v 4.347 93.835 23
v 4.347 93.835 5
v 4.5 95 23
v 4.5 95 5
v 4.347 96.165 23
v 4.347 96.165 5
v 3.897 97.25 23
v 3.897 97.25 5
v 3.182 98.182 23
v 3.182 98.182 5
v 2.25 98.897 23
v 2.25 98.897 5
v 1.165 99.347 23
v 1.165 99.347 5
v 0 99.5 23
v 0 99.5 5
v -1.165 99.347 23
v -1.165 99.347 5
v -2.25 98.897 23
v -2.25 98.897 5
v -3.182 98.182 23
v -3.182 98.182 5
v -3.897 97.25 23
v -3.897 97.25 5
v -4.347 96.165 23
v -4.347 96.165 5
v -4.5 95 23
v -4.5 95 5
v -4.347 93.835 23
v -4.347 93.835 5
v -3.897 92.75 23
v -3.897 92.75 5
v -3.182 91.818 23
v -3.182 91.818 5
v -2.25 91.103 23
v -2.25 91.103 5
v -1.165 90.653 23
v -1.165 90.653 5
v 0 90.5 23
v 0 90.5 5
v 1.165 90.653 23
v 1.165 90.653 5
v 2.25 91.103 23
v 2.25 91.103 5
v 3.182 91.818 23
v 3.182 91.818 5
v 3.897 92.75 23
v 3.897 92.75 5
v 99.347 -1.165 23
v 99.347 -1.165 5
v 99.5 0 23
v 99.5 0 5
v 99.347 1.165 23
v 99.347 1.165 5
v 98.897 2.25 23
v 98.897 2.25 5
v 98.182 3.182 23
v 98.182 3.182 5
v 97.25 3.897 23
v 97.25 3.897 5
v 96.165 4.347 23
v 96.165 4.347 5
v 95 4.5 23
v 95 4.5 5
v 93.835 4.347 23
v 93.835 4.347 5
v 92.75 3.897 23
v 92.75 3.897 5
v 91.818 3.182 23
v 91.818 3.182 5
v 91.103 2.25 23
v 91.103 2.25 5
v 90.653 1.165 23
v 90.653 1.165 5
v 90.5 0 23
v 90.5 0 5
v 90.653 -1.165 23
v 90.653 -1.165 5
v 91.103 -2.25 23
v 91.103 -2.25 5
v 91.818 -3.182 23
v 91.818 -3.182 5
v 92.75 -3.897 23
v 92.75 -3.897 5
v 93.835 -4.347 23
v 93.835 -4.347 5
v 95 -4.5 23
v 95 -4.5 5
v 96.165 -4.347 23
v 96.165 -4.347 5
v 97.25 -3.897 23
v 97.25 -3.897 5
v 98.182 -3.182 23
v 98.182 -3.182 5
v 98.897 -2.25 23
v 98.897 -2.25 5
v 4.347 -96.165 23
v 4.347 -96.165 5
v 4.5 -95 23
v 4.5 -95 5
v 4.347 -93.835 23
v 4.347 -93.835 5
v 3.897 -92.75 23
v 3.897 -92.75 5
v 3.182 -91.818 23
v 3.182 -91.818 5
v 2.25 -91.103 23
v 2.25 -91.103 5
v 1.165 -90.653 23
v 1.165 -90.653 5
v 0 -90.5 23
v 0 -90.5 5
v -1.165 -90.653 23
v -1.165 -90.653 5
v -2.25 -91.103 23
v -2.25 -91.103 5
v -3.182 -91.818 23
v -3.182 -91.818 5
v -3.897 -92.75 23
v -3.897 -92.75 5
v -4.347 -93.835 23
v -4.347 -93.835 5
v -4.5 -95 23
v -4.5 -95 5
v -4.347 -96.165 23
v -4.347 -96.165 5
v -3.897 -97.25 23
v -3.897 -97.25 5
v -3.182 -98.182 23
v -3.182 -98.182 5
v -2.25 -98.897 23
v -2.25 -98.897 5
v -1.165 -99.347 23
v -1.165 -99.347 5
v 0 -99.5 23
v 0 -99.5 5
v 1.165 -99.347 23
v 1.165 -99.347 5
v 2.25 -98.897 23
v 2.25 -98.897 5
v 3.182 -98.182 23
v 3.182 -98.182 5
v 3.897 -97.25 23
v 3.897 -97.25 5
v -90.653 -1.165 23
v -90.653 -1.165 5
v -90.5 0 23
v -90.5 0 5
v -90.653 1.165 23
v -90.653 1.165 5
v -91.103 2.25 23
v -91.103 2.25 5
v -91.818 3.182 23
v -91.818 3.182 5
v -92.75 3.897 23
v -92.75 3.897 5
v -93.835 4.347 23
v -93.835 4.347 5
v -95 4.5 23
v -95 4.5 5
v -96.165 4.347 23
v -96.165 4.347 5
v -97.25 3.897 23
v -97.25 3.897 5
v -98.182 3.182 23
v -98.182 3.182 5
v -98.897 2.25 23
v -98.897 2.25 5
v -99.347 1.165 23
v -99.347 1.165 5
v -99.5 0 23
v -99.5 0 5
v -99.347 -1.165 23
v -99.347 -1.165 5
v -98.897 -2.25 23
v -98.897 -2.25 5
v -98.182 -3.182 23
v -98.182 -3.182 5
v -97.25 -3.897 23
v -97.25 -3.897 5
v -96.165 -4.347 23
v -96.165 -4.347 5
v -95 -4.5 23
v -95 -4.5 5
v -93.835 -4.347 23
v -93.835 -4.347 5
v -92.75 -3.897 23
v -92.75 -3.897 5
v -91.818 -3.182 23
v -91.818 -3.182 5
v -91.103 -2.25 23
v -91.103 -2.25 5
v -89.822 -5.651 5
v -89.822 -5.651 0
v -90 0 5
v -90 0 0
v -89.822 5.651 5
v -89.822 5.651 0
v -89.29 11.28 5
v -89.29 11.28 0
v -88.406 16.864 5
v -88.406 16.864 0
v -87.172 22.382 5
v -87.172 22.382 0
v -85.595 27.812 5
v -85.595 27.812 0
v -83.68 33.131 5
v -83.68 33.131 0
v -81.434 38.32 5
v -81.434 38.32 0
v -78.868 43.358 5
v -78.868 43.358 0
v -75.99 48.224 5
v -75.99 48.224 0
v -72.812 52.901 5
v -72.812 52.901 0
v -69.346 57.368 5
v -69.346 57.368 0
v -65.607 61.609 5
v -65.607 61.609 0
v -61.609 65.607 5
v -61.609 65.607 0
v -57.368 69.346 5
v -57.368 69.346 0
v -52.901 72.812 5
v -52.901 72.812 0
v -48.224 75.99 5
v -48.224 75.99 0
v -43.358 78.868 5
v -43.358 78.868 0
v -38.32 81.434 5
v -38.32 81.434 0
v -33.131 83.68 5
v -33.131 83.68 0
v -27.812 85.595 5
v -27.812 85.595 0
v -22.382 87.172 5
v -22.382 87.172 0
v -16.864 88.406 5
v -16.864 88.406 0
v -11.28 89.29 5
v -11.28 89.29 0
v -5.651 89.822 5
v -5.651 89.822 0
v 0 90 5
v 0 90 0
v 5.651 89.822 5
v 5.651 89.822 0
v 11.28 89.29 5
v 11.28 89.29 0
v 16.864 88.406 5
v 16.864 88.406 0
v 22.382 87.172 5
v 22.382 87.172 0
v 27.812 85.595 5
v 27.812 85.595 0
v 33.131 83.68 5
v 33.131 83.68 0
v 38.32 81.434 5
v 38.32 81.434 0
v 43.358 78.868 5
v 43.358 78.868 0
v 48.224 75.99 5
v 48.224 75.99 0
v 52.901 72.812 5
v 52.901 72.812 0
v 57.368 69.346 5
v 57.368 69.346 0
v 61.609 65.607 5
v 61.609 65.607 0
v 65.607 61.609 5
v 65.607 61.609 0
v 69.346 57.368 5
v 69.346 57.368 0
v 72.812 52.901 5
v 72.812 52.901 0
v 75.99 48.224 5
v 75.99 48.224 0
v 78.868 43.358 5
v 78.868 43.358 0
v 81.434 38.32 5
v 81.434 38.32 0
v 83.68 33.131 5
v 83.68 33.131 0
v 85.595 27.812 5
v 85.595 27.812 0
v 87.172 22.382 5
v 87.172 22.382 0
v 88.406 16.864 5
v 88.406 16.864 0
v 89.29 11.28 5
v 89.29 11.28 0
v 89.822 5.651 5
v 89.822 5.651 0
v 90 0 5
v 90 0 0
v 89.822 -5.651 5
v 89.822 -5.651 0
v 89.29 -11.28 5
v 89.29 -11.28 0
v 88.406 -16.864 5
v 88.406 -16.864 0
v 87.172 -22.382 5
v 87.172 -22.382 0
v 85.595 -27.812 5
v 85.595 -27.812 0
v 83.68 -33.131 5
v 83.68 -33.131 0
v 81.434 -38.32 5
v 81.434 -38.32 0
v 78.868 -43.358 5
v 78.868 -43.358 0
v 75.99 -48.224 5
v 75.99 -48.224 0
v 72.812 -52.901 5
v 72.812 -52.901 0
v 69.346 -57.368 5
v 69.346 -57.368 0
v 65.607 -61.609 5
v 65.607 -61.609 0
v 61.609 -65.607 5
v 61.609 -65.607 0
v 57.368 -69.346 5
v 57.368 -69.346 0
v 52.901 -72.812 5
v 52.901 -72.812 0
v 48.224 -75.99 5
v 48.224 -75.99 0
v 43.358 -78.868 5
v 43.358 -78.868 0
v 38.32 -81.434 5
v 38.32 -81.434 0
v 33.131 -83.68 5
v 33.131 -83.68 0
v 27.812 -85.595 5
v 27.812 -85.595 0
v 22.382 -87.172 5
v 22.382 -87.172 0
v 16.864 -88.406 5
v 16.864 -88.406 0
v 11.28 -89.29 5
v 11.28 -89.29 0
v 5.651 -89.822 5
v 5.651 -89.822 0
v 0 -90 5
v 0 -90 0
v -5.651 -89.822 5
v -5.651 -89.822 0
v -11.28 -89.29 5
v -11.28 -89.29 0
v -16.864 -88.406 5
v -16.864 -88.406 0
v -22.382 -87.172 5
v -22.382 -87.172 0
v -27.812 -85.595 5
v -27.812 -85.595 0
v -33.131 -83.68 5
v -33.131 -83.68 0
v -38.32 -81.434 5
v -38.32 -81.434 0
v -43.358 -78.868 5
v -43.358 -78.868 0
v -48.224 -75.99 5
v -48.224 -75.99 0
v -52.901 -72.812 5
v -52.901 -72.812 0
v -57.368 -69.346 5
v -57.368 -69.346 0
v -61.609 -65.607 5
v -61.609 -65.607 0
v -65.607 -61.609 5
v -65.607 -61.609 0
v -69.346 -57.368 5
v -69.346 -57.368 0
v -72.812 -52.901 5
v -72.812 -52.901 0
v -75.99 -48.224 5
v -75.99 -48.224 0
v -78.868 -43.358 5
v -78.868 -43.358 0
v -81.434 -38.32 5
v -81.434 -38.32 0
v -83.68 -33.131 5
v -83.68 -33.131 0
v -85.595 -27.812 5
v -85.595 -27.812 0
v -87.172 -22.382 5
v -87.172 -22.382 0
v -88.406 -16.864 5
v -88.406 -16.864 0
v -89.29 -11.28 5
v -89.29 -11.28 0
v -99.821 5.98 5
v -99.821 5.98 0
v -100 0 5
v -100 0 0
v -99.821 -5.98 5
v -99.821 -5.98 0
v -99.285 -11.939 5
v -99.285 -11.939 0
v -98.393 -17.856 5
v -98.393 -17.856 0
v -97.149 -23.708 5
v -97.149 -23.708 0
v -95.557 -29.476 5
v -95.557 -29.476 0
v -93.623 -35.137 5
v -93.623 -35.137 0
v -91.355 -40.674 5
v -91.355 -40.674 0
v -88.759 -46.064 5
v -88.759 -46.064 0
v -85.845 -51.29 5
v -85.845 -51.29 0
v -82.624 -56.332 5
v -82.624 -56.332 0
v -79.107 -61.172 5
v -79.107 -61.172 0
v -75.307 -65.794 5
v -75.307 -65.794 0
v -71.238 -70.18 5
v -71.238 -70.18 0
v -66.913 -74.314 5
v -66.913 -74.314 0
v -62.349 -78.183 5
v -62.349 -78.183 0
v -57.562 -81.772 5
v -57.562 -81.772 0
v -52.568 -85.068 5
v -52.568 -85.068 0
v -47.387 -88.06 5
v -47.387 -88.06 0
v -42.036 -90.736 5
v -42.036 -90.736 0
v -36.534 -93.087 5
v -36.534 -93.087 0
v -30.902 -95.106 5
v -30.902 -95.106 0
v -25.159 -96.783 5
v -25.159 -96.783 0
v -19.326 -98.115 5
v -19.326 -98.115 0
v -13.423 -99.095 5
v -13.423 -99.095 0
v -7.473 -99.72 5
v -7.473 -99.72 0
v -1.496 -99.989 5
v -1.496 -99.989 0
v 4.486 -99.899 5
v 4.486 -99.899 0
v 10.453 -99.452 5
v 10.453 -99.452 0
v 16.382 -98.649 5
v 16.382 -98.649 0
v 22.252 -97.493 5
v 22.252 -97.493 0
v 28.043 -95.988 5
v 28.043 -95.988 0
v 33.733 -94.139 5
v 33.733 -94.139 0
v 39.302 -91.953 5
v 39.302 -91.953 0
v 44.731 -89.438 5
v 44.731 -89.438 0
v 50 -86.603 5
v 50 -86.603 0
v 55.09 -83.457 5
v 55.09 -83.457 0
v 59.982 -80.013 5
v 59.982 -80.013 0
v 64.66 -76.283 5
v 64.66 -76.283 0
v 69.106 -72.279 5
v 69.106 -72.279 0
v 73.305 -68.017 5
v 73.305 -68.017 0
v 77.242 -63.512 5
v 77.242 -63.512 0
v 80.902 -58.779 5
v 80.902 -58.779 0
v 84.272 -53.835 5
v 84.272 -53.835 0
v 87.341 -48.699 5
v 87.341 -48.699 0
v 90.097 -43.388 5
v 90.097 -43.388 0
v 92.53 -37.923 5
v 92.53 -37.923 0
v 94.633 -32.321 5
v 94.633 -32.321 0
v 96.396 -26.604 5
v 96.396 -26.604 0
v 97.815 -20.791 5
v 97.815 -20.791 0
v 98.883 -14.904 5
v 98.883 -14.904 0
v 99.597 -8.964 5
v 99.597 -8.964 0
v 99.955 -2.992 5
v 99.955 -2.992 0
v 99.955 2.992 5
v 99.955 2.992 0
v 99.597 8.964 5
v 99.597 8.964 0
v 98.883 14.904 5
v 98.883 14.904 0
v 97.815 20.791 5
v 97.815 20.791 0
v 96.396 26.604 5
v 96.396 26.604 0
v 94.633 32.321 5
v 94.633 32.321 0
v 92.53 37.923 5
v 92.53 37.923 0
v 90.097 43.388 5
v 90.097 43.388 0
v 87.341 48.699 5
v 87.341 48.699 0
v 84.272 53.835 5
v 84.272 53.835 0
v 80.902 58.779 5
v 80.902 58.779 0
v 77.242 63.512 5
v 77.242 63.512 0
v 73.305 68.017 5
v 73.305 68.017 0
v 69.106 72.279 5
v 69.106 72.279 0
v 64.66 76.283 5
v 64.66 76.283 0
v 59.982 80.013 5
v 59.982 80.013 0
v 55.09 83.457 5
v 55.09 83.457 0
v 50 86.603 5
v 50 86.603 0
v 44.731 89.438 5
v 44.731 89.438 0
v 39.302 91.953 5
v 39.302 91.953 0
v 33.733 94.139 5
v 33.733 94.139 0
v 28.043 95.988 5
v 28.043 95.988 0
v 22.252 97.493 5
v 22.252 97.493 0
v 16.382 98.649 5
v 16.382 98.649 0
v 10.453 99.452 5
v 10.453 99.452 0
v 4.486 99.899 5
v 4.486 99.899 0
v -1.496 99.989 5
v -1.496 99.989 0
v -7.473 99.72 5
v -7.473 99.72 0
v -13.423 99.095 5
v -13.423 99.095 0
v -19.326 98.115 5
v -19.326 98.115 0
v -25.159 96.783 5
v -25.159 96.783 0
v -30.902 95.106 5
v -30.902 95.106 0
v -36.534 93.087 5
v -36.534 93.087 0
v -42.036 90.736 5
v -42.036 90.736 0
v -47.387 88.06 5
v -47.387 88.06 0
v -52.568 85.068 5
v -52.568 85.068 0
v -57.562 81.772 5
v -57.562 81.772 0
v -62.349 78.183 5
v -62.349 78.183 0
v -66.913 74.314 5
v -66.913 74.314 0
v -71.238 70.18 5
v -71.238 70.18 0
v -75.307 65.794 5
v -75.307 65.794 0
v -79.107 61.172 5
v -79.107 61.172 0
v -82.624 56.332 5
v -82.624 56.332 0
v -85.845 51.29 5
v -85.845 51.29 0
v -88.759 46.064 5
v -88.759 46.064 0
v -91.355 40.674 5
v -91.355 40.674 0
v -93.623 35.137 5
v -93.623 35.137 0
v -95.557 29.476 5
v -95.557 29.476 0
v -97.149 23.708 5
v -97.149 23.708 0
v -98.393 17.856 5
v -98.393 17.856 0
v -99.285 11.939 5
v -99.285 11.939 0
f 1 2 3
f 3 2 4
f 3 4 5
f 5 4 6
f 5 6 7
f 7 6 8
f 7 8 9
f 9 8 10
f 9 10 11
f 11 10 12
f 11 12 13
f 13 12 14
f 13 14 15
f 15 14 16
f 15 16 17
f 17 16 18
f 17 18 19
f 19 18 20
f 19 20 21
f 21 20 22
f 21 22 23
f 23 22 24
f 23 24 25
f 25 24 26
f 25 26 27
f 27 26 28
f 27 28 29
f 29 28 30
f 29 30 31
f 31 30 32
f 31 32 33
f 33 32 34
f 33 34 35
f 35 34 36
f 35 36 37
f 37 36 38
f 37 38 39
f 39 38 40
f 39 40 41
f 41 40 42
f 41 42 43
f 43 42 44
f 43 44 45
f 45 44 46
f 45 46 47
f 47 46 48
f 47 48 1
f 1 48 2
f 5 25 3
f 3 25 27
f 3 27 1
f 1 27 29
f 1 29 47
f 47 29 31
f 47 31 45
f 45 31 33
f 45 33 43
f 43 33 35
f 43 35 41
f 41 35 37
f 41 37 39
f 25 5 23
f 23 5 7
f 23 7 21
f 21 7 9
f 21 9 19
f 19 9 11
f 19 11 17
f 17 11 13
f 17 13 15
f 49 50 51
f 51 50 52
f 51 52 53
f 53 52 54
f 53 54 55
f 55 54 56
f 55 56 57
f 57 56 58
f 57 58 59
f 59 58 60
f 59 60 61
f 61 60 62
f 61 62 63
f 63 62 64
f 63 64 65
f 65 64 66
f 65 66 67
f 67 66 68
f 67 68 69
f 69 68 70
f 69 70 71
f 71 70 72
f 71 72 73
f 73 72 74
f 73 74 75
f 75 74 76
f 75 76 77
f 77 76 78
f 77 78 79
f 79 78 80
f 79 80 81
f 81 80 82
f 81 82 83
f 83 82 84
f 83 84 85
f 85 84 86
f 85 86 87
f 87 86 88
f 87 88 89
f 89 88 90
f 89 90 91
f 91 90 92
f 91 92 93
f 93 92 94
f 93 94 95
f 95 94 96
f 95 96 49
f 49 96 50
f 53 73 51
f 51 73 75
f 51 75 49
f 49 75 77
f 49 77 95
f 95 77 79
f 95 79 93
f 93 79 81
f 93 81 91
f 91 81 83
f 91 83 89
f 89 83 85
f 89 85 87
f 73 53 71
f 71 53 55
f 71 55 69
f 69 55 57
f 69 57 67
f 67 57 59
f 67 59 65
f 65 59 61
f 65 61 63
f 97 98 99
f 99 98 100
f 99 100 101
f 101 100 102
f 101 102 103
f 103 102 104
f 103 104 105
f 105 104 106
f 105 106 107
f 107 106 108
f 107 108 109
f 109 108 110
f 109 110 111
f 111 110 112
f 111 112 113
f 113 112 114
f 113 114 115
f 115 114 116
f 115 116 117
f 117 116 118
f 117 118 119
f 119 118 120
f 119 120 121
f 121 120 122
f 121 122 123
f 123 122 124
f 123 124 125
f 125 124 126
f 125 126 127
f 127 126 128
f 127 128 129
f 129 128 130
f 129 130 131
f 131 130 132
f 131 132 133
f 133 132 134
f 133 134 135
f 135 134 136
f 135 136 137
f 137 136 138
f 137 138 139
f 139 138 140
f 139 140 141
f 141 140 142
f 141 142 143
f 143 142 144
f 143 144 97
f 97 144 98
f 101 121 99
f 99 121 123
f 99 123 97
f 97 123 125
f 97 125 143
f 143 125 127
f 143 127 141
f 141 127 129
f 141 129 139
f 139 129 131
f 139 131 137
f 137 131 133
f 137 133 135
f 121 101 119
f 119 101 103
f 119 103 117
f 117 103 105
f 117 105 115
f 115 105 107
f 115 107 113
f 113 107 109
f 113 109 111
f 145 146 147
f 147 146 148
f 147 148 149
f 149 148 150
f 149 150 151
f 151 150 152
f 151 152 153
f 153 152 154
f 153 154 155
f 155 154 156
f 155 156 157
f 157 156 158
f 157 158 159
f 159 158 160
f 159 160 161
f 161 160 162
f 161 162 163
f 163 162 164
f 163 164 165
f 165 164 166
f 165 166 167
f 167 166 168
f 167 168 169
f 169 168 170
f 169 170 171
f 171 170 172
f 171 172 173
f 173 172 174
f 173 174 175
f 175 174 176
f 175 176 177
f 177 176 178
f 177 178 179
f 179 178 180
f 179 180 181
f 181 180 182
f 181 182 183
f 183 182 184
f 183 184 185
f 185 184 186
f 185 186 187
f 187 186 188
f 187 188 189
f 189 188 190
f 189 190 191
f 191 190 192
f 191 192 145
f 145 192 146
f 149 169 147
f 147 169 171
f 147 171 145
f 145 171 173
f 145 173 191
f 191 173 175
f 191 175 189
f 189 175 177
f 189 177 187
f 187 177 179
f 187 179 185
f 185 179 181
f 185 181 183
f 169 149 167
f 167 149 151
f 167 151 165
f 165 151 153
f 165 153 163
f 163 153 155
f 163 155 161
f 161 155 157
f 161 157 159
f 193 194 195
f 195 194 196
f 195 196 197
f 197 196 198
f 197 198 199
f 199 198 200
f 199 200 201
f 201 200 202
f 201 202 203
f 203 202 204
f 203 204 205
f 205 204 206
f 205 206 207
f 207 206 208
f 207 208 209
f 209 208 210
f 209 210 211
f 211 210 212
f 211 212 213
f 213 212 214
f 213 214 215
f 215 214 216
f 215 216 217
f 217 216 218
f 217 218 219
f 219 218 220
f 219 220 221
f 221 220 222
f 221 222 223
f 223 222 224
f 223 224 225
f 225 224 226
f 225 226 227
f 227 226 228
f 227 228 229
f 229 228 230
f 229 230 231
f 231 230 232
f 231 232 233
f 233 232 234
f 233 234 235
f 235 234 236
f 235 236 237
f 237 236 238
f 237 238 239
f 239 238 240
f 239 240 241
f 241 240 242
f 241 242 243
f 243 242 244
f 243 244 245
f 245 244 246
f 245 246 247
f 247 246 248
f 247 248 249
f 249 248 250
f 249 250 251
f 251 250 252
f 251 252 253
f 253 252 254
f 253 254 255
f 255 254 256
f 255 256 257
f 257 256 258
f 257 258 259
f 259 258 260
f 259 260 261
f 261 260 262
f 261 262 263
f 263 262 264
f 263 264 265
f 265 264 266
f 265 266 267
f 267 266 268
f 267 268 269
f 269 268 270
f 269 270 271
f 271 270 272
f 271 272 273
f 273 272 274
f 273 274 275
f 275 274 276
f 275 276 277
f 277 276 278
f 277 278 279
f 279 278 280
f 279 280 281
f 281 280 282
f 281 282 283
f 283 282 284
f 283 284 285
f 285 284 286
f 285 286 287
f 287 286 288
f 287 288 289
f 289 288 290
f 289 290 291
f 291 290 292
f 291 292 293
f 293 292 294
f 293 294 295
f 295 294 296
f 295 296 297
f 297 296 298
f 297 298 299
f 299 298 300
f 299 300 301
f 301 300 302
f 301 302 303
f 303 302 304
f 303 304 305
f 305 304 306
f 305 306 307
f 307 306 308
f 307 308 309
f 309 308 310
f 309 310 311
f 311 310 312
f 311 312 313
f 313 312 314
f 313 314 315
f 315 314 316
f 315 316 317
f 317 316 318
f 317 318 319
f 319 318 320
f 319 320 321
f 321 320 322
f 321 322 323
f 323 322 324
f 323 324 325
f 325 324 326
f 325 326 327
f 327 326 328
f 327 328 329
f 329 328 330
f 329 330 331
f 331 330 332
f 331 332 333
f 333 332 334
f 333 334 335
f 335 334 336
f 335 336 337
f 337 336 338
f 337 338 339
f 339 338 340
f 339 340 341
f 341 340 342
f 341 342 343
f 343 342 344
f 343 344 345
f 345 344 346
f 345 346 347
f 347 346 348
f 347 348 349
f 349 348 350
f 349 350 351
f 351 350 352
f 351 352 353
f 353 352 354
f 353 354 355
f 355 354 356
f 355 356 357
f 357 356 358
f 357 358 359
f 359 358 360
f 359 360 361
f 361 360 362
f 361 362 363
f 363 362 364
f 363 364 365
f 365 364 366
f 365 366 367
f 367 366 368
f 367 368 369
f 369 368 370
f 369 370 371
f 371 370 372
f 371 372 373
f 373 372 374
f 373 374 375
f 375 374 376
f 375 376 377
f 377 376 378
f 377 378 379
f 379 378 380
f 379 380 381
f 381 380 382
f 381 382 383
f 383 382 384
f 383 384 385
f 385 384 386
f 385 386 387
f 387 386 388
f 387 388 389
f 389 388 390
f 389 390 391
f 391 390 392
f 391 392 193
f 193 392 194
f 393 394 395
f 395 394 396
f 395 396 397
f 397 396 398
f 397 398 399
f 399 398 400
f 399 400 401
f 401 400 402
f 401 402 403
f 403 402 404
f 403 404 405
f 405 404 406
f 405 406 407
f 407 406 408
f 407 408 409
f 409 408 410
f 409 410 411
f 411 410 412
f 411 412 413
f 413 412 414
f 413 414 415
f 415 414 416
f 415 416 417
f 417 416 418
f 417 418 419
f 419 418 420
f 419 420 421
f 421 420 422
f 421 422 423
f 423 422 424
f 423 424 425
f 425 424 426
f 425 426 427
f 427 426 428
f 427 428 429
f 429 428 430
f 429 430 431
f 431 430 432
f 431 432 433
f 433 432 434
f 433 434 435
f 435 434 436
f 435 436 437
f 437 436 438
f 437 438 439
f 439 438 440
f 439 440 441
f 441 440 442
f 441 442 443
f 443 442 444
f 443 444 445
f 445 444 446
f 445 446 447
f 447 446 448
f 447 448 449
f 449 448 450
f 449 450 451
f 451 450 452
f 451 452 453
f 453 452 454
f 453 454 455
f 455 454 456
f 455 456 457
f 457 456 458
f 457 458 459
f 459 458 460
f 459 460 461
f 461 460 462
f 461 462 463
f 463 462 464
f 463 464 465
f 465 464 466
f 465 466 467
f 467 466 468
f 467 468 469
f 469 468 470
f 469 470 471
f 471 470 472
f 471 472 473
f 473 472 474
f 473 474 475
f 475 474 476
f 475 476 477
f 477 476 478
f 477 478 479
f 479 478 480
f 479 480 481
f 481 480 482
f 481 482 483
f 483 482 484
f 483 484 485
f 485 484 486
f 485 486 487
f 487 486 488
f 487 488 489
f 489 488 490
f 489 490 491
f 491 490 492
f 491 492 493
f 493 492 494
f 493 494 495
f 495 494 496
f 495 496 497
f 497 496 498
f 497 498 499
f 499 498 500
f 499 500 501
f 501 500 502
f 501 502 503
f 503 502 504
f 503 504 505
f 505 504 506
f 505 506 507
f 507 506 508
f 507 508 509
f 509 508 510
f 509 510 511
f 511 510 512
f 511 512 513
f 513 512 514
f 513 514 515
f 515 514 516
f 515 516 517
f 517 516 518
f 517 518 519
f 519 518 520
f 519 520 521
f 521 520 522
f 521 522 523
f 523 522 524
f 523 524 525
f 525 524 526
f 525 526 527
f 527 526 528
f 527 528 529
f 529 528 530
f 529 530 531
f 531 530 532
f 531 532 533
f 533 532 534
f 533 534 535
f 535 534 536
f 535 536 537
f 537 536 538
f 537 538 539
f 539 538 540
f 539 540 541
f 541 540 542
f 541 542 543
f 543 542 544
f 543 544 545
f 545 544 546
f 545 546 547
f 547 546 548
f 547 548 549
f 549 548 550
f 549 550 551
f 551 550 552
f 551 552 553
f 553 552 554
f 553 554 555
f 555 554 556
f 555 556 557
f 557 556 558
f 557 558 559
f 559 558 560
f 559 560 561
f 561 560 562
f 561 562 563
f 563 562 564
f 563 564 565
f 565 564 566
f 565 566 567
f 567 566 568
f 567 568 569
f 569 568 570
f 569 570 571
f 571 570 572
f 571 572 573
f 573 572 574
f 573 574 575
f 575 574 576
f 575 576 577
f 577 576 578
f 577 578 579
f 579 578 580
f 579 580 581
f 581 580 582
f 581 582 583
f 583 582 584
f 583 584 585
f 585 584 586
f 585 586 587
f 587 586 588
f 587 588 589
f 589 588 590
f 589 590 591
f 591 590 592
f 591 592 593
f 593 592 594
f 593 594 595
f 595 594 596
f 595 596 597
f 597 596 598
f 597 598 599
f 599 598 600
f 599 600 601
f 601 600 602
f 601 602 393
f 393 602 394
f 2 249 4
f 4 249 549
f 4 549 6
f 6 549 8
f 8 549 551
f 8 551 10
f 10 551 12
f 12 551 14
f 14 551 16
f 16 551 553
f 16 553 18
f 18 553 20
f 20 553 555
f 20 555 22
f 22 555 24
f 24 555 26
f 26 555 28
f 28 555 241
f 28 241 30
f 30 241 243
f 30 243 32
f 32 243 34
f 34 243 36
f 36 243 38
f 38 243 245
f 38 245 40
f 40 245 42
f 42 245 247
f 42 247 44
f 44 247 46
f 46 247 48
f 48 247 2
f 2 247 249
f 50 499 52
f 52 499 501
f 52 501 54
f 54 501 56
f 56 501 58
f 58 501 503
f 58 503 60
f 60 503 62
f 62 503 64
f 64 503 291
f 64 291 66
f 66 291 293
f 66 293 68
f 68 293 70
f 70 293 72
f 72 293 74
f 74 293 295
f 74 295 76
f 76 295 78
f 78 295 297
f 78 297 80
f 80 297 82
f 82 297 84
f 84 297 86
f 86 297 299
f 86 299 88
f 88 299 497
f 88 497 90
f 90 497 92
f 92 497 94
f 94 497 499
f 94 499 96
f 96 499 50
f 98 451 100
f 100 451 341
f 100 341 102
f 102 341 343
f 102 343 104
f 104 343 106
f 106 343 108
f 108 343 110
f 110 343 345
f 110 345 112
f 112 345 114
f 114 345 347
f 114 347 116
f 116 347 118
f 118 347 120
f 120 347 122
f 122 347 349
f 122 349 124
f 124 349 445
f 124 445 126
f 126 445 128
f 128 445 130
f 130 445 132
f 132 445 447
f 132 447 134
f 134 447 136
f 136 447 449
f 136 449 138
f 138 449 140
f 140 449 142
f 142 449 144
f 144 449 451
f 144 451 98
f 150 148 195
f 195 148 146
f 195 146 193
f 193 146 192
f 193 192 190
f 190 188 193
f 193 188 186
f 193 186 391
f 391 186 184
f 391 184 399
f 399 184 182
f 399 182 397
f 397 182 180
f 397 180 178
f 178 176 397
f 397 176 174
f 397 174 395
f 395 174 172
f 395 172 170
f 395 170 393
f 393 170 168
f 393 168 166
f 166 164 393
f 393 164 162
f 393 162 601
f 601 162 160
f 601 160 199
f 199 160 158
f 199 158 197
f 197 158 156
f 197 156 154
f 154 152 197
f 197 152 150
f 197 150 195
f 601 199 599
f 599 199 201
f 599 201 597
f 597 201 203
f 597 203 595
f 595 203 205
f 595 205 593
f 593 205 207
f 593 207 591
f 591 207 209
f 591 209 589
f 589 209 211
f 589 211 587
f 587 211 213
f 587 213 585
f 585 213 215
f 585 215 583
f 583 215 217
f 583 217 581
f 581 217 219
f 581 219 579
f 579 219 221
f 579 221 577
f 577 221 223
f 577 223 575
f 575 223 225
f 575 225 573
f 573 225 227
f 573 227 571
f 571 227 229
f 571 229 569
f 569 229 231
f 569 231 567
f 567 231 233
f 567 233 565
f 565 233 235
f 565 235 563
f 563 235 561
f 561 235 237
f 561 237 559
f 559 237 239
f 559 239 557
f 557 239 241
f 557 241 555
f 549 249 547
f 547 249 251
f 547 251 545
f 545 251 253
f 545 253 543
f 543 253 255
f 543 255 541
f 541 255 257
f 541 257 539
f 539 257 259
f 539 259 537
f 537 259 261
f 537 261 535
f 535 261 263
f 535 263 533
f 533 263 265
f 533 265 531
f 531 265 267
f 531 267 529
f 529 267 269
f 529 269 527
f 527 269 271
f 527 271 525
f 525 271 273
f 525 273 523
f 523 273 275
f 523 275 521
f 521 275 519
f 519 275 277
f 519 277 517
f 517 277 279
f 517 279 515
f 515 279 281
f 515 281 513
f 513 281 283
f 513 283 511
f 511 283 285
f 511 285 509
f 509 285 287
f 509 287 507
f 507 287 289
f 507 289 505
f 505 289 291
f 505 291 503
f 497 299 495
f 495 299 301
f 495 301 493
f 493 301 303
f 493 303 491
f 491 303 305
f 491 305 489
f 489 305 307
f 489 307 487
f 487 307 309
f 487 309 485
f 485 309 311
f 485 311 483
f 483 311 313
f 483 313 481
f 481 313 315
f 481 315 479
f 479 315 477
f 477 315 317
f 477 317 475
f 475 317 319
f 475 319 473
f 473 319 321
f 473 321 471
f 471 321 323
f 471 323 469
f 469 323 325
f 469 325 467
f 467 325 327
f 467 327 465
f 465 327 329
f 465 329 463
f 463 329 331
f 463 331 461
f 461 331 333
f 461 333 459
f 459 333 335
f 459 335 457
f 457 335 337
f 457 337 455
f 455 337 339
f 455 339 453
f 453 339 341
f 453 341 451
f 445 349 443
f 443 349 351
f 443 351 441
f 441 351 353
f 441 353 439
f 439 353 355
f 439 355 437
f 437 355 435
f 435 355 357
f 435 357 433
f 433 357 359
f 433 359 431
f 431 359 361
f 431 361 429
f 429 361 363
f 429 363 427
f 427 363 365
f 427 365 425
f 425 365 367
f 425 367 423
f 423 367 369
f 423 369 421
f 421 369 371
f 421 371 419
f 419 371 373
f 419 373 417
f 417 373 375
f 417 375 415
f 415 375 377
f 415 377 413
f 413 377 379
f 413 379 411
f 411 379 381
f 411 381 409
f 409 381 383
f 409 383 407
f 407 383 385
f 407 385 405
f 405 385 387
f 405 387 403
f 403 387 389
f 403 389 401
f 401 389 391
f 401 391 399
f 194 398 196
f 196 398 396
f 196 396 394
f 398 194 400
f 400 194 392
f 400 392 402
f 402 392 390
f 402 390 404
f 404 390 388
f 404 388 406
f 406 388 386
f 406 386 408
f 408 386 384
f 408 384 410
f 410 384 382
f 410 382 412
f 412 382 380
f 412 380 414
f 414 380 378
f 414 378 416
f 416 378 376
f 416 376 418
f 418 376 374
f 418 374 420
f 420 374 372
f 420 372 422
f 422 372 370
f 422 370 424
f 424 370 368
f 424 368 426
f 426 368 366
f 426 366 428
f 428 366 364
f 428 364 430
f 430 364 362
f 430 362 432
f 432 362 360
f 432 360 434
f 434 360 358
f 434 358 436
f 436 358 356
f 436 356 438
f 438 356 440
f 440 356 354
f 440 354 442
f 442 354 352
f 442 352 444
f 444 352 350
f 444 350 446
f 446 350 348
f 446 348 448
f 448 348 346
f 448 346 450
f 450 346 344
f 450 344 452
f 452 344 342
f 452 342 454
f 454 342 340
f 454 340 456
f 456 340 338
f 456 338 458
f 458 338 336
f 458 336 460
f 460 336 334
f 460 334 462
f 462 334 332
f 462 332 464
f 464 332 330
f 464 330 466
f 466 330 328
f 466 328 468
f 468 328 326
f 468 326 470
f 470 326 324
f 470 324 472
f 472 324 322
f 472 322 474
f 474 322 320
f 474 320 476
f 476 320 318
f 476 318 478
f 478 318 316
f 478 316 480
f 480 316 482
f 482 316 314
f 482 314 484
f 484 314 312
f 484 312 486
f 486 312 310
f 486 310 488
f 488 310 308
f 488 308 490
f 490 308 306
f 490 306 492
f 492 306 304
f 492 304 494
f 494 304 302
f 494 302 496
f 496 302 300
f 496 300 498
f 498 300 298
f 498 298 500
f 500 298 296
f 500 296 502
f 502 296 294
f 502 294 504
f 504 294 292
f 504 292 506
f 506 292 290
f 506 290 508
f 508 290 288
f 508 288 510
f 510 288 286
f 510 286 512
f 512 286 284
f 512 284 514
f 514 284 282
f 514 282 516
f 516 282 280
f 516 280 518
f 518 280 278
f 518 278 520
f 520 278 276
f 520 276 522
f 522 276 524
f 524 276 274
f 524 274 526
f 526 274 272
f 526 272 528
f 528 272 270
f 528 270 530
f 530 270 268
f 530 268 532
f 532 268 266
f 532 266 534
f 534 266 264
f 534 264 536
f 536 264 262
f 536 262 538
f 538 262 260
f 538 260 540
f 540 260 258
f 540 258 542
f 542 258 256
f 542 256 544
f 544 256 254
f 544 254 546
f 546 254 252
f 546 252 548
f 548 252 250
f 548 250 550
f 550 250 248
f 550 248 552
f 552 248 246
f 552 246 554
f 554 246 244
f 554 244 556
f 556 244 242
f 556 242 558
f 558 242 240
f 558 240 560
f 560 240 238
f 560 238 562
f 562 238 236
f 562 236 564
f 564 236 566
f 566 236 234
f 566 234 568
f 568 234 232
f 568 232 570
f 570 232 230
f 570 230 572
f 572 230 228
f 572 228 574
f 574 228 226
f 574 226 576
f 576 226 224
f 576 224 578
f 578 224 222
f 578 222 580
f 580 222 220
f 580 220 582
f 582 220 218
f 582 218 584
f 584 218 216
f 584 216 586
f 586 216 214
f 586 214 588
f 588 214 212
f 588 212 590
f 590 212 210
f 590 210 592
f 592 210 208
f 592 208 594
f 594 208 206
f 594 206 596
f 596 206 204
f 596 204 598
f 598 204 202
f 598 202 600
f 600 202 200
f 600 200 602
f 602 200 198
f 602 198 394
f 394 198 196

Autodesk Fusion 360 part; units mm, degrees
sketch "Sketch1" plane through (0, 0, 0) normal (0, 0, 1) x (1, 0, 0)
  circle A0 centre (0, 0) radius 100
  circle A1 centre (0, 0) radius 90
  dimension "d1" = 200
  dimension "d2" = 180
extrude "Extrude1" add sketch "Sketch1" along normal blind 5
sketch "Sketch2" plane through (0, 0, 5) normal (0, 0, 1) x (-1, 0, 0)
  circle A0 centre (0, 0) radius 90
  circle A1 centre (0, 0) radius 100
  line L0 (0, 0) -> (-95, 0) construction
  line L1 (-95, 0) -> (95, 0) construction
  line L2 (95, 0) -> (95, -95) construction
  line L3 (95, -95) -> (-95, -95) construction
  line L4 (-95, -95) -> (-95, 0) construction
  line L5 (-95, 0) -> (95, 0) construction
  line L6 (95, 0) -> (95, 95) construction
  line L7 (95, 95) -> (-95, 95) construction
  line L8 (-95, 95) -> (-95, 0) construction
  circle A2 centre (95, 0) radius 4.5
  circle A3 centre (0, -95) radius 4.5
  circle A4 centre (-95, 0) radius 4.5
  circle A5 centre (0, 95) radius 4.5
  dimension "d5" = 95
  dimension "d6" = 190
  dimension "d7" = 95
  dimension "d8" = 190
  dimension "d9" = 95
  dimension "d10" = 9
  dimension "d11" = 9
  dimension "d12" = 9
  dimension "d13" = 9
extrude "Extrude2" add sketch "Sketch2" along normal blind 18 contours A2 | A3 | A4 | A5
